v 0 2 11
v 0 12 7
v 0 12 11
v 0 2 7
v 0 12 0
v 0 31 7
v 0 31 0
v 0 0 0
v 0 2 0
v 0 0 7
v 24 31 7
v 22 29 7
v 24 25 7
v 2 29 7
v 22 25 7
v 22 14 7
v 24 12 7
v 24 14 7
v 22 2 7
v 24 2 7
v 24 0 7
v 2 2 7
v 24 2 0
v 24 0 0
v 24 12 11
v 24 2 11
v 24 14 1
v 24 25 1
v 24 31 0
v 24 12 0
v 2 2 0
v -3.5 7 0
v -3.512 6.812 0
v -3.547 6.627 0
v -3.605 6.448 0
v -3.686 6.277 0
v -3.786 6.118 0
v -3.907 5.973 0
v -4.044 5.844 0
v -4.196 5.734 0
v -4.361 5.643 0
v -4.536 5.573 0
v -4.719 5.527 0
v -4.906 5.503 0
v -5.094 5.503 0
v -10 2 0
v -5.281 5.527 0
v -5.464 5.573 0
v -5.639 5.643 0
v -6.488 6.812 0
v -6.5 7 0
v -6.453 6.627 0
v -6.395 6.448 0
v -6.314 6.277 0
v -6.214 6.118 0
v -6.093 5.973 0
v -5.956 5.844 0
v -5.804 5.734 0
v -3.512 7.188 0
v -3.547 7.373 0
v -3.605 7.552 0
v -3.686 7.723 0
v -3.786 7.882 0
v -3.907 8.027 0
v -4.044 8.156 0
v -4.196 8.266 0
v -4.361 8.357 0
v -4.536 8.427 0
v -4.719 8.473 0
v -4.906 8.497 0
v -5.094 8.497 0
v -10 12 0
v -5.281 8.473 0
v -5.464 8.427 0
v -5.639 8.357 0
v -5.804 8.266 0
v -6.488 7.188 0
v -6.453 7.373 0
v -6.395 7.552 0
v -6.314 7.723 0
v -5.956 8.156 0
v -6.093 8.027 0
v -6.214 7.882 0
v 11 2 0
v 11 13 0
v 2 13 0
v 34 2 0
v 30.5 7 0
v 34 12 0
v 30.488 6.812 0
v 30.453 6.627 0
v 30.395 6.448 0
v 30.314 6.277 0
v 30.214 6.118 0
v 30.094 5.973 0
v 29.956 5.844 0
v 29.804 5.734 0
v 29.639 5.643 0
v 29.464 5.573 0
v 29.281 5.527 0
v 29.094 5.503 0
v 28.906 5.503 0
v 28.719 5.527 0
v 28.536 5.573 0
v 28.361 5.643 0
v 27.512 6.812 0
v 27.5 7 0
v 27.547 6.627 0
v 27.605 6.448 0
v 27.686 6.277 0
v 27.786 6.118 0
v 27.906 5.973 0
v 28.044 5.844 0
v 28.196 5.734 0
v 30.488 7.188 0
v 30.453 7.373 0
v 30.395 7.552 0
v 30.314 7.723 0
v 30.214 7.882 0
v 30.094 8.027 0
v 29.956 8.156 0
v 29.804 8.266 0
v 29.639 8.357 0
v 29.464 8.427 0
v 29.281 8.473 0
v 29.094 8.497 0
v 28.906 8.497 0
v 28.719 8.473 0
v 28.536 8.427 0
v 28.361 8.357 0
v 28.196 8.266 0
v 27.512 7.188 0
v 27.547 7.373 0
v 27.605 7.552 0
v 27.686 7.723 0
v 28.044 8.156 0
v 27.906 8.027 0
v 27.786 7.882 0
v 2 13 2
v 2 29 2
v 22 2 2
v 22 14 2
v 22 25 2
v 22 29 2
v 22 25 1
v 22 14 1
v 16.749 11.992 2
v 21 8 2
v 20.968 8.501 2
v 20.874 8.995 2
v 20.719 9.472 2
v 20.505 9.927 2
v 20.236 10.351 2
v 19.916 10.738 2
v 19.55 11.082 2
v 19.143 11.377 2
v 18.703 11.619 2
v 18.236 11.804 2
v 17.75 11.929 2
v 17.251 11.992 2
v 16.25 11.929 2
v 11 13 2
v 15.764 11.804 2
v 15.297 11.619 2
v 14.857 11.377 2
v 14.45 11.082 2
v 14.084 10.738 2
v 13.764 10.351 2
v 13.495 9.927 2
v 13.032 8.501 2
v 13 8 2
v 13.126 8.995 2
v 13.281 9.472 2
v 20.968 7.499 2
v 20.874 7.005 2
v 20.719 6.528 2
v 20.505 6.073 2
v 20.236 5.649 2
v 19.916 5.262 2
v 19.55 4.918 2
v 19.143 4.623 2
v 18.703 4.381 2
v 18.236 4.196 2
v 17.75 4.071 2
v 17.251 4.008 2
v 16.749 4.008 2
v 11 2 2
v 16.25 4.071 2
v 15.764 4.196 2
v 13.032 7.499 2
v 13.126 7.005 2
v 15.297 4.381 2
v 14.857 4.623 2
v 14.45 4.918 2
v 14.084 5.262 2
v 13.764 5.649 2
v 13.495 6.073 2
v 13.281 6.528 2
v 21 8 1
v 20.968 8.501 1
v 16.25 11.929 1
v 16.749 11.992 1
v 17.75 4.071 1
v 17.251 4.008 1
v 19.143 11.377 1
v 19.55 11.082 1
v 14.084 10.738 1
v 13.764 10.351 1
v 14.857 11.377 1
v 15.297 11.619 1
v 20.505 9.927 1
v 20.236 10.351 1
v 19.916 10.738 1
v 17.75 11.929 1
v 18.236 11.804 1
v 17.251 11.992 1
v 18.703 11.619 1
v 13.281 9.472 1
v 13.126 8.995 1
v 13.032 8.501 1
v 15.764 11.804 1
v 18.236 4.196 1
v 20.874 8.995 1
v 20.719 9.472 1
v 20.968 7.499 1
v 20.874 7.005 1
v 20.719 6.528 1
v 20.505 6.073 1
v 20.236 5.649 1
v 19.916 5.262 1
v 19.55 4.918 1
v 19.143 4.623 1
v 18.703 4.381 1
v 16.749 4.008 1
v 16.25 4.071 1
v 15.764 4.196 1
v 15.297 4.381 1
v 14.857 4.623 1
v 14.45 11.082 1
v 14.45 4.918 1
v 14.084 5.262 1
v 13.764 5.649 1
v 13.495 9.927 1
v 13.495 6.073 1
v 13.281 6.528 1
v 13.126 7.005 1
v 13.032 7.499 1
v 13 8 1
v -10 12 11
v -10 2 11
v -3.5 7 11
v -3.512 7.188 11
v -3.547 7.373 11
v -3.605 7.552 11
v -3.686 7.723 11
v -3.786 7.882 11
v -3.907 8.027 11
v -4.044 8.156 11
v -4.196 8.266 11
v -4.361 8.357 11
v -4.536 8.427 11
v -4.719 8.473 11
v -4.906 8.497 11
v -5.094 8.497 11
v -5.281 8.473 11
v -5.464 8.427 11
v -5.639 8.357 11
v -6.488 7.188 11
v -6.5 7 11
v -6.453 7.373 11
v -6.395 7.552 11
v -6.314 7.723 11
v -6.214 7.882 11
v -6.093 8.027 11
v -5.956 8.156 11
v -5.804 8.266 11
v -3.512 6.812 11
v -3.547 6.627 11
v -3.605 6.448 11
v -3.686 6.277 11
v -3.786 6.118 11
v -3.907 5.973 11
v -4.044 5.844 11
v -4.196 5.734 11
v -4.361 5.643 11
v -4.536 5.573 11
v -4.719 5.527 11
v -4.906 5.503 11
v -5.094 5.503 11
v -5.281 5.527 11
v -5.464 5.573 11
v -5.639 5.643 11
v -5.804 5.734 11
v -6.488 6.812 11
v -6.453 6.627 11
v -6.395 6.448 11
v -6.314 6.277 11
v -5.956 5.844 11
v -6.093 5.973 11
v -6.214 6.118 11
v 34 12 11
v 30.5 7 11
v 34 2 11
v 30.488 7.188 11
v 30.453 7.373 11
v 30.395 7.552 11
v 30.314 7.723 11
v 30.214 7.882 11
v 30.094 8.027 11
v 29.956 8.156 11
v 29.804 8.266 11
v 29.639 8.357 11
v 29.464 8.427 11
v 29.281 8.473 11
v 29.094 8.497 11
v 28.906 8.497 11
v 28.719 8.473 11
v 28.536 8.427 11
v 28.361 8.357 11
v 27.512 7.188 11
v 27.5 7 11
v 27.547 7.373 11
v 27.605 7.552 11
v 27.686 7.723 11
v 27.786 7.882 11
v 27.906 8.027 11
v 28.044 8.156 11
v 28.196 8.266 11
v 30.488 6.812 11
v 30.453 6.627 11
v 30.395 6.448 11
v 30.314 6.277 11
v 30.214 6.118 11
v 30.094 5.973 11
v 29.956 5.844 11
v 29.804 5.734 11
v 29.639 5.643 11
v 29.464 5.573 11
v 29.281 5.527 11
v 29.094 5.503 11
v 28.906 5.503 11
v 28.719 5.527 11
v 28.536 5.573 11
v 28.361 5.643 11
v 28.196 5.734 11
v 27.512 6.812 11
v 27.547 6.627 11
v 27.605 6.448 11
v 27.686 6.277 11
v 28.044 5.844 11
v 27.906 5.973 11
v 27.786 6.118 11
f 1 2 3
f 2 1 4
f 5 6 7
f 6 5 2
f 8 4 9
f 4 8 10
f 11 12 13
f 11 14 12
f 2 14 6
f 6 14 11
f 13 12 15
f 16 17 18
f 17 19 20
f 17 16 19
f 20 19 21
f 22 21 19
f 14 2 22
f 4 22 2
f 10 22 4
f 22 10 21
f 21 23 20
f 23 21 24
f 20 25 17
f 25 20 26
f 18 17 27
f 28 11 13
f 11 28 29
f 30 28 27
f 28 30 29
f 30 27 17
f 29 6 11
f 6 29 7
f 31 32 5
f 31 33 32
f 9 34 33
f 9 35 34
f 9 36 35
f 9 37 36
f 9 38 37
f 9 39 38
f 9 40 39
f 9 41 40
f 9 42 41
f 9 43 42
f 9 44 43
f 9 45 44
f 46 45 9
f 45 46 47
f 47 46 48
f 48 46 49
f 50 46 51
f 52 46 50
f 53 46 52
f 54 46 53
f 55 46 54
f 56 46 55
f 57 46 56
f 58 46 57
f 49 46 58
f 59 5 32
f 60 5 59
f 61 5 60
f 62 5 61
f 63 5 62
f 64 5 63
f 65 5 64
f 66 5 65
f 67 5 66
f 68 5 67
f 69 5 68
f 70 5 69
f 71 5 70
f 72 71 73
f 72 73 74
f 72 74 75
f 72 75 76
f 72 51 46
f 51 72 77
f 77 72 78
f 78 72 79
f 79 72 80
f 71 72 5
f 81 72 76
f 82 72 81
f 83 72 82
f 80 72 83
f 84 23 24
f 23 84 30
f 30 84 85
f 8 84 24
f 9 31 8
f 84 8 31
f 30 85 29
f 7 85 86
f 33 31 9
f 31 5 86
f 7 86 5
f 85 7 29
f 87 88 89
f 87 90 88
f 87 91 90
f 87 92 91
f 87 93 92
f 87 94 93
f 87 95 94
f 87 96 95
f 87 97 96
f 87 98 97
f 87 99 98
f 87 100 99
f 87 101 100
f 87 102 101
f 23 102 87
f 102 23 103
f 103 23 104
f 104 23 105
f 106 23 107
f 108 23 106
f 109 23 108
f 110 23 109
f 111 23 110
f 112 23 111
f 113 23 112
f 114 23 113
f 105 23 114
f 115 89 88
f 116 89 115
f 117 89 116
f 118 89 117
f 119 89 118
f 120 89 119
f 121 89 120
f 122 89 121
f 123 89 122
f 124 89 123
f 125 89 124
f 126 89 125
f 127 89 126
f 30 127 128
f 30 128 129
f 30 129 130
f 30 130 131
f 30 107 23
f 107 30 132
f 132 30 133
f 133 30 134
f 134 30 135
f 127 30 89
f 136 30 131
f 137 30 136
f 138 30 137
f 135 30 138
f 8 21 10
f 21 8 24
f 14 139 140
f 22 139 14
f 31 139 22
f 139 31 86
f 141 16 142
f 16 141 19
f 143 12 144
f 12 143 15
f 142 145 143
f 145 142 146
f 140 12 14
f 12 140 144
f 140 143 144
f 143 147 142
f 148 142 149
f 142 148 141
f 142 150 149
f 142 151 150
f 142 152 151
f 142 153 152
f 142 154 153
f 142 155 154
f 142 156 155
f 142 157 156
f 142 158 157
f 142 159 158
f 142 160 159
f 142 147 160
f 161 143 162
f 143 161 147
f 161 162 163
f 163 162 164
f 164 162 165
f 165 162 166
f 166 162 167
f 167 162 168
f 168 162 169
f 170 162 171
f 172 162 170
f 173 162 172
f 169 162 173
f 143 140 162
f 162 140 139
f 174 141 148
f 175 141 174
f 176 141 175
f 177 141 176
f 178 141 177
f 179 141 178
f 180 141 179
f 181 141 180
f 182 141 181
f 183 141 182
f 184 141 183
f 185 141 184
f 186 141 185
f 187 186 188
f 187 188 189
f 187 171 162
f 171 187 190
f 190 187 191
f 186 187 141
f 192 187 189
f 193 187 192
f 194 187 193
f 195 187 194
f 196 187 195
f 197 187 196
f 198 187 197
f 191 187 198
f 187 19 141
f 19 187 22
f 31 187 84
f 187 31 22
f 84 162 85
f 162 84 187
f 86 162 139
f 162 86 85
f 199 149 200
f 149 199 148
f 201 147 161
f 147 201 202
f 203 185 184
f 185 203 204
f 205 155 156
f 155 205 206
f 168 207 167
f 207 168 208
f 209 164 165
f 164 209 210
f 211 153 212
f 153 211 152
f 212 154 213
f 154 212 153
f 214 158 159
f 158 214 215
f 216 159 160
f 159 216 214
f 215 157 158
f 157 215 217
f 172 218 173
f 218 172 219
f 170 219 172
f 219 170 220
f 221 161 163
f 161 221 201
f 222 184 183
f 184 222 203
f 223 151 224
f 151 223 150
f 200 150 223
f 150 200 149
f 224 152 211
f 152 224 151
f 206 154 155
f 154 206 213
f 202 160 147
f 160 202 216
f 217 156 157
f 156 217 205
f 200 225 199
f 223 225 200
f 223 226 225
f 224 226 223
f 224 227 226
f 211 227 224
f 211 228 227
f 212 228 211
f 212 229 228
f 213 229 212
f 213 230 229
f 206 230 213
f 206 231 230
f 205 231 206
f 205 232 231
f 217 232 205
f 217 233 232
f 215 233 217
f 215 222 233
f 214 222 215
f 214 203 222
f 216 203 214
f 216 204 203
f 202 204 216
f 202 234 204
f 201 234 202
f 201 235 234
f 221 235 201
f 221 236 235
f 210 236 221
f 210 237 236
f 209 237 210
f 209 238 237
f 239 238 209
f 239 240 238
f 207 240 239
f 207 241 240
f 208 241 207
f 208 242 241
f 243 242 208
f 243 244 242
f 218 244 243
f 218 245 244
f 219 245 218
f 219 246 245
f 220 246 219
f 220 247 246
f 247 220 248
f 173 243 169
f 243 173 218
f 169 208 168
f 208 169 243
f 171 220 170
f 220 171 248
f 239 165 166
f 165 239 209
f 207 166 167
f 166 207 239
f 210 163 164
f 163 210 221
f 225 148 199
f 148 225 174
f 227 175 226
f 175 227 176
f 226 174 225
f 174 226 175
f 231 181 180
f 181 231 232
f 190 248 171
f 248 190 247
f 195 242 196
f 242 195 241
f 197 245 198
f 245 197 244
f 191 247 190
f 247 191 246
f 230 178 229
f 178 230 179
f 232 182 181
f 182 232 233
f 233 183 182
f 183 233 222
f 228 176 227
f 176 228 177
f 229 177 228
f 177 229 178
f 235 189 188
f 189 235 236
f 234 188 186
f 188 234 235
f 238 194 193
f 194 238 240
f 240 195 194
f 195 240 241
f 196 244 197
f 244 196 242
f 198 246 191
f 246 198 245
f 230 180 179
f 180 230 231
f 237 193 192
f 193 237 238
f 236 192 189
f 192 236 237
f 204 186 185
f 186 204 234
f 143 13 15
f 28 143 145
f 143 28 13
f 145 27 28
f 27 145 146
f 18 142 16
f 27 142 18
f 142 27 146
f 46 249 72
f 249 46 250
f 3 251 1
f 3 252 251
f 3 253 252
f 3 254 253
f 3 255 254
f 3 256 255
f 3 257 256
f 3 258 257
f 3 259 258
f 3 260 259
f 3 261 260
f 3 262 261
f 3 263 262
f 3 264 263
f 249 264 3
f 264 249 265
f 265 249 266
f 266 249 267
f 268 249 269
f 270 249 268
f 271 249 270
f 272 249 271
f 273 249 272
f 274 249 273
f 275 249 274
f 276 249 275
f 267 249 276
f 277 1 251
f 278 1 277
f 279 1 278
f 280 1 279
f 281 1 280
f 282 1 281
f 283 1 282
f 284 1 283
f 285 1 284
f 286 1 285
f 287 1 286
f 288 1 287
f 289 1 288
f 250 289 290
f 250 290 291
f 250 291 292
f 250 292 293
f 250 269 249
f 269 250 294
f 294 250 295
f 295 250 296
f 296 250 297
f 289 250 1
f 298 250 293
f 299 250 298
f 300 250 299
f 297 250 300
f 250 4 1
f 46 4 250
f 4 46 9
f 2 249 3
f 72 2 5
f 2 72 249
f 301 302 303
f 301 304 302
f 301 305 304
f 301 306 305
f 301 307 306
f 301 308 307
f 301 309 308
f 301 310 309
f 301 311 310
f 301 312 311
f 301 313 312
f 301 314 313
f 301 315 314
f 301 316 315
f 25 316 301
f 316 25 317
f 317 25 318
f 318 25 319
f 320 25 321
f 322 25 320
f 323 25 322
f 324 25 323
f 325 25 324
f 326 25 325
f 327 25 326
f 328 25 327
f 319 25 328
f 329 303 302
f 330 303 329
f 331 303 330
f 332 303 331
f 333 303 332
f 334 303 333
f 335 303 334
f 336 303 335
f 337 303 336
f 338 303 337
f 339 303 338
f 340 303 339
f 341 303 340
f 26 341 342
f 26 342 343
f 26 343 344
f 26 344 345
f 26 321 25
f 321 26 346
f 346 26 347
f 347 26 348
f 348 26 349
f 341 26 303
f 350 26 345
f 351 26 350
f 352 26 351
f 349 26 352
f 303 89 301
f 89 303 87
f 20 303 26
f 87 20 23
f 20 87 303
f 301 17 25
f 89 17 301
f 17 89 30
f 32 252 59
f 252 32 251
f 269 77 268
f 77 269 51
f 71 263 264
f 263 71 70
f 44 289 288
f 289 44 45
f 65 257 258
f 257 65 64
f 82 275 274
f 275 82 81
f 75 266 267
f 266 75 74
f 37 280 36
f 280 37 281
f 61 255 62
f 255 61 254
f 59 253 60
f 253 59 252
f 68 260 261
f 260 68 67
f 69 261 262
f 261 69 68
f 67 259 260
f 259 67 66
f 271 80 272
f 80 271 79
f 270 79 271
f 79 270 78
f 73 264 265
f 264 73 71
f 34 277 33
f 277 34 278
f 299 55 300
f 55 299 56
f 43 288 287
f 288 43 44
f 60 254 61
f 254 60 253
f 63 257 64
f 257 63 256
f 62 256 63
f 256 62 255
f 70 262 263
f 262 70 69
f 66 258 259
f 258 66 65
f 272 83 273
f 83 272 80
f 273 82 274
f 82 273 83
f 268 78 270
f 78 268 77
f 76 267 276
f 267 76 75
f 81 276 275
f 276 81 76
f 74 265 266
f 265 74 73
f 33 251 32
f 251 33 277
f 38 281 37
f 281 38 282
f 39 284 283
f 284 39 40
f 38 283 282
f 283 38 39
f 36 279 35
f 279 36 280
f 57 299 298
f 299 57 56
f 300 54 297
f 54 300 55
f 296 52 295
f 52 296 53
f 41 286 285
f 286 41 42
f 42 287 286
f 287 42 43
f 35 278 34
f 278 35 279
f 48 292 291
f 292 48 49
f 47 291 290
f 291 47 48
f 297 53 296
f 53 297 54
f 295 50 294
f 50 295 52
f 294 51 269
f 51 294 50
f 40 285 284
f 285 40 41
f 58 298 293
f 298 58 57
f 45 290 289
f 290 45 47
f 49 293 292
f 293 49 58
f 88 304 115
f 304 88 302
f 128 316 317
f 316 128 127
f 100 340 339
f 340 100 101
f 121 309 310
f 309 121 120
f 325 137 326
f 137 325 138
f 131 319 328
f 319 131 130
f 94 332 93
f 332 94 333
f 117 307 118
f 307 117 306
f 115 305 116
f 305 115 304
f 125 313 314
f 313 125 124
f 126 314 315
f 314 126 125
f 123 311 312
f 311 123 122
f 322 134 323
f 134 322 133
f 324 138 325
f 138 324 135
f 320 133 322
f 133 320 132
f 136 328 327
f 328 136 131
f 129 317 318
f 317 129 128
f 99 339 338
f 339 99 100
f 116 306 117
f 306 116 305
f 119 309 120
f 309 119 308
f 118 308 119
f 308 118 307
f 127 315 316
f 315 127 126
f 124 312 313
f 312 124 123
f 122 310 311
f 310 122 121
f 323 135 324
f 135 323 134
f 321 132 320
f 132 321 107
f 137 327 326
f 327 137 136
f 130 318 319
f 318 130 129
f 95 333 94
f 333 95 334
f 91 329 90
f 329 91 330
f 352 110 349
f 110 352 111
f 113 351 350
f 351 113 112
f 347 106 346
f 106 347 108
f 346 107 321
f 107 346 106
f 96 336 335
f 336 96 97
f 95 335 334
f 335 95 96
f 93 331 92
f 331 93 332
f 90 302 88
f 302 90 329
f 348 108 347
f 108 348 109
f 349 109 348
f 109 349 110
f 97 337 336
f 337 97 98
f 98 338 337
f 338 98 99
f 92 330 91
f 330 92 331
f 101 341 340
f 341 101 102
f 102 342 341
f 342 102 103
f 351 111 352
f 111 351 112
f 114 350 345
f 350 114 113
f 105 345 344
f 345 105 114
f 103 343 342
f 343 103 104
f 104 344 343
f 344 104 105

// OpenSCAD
// 3D
module mhz_hold(){
    difference(){
        union(){
            difference(){
                cube([24,31,7]);
                translate([2,2,2]) cube([20,27,5]);
                translate([2,2,0]) cube([9,11,2]);
                translate([17,8,1]) cylinder(d=8 ,h=1,$fn=50);
                
                translate([22,14,1]) cube([9,11,6]);
            }
            translate([-10,2,0]) cube([10,10,11]);
            translate([24,2,0]) cube([10,10,11]);
        }
        translate([-5,7,0]) cylinder(d=3,h=13,$fn=50);
        translate([29,7,0]) cylinder(d=3,h=13,$fn=50);
    }
}


mhz_hold();
